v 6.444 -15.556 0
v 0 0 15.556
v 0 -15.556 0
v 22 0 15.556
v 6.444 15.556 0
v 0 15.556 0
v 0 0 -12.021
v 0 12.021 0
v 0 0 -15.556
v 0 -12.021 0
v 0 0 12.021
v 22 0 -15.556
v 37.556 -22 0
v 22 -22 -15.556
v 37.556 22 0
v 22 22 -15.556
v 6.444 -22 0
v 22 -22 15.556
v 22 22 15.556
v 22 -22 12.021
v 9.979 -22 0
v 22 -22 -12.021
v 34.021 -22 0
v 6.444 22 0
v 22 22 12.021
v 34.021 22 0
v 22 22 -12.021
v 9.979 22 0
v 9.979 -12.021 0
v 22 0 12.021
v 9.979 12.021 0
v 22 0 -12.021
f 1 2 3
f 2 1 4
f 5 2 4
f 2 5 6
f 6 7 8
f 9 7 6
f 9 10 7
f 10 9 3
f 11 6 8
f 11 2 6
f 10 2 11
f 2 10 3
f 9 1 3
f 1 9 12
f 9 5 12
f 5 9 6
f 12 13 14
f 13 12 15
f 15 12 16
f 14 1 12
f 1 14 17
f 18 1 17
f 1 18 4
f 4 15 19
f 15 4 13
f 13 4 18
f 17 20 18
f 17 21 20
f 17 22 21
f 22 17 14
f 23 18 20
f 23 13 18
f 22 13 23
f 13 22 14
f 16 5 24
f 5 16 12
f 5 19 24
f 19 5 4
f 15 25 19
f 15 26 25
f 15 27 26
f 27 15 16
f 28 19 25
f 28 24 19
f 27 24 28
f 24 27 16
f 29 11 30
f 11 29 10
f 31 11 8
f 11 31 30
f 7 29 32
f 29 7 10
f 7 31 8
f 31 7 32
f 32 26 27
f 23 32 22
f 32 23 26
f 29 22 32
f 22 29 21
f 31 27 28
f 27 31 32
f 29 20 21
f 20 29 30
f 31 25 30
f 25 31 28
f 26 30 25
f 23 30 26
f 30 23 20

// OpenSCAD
wall  = 2.5;
tower_width = 22;
margin = 0.5;
tower_width_with_margin = tower_width + margin;
height = 20;

cam_platform = 25;
no_of_star_tips = 12;


module t(a) {
    diagonal = sqrt(2)*a;
    translate( [ 0, -diagonal/2, 0 ] ) {
        rotate([0, 0, 45]) cube([a, a, a]);
        translate([(-1/2)*diagonal, diagonal/2-a, a])
            rotate([0, 45, 0]) cube([a, a, a]);
        translate([(-1/2)*diagonal, diagonal/2, a])
            rotate([0, 45, 0]) cube([a, a, a]);
    }
}

module ttube() {
    difference() {
        t( a = tower_width );
    
        translate([ 0, (-1/2)*sqrt(2)*(tower_width-2*wall), -wall ]) rotate( [0, 0, 45] ) cube( [tower_width-2*wall, tower_width-2*wall, tower_width+wall ]);
    
        translate([(-1/2)*sqrt(2)*(tower_width-2*wall), -2.5*(tower_width-2*wall), tower_width])
            rotate( [0, 45, 0] )
                cube( [tower_width-2*wall, 5*(tower_width-2*wall), tower_width-2*wall]);
    }
}

rotate( [0, 90, 0] ) ttube();
